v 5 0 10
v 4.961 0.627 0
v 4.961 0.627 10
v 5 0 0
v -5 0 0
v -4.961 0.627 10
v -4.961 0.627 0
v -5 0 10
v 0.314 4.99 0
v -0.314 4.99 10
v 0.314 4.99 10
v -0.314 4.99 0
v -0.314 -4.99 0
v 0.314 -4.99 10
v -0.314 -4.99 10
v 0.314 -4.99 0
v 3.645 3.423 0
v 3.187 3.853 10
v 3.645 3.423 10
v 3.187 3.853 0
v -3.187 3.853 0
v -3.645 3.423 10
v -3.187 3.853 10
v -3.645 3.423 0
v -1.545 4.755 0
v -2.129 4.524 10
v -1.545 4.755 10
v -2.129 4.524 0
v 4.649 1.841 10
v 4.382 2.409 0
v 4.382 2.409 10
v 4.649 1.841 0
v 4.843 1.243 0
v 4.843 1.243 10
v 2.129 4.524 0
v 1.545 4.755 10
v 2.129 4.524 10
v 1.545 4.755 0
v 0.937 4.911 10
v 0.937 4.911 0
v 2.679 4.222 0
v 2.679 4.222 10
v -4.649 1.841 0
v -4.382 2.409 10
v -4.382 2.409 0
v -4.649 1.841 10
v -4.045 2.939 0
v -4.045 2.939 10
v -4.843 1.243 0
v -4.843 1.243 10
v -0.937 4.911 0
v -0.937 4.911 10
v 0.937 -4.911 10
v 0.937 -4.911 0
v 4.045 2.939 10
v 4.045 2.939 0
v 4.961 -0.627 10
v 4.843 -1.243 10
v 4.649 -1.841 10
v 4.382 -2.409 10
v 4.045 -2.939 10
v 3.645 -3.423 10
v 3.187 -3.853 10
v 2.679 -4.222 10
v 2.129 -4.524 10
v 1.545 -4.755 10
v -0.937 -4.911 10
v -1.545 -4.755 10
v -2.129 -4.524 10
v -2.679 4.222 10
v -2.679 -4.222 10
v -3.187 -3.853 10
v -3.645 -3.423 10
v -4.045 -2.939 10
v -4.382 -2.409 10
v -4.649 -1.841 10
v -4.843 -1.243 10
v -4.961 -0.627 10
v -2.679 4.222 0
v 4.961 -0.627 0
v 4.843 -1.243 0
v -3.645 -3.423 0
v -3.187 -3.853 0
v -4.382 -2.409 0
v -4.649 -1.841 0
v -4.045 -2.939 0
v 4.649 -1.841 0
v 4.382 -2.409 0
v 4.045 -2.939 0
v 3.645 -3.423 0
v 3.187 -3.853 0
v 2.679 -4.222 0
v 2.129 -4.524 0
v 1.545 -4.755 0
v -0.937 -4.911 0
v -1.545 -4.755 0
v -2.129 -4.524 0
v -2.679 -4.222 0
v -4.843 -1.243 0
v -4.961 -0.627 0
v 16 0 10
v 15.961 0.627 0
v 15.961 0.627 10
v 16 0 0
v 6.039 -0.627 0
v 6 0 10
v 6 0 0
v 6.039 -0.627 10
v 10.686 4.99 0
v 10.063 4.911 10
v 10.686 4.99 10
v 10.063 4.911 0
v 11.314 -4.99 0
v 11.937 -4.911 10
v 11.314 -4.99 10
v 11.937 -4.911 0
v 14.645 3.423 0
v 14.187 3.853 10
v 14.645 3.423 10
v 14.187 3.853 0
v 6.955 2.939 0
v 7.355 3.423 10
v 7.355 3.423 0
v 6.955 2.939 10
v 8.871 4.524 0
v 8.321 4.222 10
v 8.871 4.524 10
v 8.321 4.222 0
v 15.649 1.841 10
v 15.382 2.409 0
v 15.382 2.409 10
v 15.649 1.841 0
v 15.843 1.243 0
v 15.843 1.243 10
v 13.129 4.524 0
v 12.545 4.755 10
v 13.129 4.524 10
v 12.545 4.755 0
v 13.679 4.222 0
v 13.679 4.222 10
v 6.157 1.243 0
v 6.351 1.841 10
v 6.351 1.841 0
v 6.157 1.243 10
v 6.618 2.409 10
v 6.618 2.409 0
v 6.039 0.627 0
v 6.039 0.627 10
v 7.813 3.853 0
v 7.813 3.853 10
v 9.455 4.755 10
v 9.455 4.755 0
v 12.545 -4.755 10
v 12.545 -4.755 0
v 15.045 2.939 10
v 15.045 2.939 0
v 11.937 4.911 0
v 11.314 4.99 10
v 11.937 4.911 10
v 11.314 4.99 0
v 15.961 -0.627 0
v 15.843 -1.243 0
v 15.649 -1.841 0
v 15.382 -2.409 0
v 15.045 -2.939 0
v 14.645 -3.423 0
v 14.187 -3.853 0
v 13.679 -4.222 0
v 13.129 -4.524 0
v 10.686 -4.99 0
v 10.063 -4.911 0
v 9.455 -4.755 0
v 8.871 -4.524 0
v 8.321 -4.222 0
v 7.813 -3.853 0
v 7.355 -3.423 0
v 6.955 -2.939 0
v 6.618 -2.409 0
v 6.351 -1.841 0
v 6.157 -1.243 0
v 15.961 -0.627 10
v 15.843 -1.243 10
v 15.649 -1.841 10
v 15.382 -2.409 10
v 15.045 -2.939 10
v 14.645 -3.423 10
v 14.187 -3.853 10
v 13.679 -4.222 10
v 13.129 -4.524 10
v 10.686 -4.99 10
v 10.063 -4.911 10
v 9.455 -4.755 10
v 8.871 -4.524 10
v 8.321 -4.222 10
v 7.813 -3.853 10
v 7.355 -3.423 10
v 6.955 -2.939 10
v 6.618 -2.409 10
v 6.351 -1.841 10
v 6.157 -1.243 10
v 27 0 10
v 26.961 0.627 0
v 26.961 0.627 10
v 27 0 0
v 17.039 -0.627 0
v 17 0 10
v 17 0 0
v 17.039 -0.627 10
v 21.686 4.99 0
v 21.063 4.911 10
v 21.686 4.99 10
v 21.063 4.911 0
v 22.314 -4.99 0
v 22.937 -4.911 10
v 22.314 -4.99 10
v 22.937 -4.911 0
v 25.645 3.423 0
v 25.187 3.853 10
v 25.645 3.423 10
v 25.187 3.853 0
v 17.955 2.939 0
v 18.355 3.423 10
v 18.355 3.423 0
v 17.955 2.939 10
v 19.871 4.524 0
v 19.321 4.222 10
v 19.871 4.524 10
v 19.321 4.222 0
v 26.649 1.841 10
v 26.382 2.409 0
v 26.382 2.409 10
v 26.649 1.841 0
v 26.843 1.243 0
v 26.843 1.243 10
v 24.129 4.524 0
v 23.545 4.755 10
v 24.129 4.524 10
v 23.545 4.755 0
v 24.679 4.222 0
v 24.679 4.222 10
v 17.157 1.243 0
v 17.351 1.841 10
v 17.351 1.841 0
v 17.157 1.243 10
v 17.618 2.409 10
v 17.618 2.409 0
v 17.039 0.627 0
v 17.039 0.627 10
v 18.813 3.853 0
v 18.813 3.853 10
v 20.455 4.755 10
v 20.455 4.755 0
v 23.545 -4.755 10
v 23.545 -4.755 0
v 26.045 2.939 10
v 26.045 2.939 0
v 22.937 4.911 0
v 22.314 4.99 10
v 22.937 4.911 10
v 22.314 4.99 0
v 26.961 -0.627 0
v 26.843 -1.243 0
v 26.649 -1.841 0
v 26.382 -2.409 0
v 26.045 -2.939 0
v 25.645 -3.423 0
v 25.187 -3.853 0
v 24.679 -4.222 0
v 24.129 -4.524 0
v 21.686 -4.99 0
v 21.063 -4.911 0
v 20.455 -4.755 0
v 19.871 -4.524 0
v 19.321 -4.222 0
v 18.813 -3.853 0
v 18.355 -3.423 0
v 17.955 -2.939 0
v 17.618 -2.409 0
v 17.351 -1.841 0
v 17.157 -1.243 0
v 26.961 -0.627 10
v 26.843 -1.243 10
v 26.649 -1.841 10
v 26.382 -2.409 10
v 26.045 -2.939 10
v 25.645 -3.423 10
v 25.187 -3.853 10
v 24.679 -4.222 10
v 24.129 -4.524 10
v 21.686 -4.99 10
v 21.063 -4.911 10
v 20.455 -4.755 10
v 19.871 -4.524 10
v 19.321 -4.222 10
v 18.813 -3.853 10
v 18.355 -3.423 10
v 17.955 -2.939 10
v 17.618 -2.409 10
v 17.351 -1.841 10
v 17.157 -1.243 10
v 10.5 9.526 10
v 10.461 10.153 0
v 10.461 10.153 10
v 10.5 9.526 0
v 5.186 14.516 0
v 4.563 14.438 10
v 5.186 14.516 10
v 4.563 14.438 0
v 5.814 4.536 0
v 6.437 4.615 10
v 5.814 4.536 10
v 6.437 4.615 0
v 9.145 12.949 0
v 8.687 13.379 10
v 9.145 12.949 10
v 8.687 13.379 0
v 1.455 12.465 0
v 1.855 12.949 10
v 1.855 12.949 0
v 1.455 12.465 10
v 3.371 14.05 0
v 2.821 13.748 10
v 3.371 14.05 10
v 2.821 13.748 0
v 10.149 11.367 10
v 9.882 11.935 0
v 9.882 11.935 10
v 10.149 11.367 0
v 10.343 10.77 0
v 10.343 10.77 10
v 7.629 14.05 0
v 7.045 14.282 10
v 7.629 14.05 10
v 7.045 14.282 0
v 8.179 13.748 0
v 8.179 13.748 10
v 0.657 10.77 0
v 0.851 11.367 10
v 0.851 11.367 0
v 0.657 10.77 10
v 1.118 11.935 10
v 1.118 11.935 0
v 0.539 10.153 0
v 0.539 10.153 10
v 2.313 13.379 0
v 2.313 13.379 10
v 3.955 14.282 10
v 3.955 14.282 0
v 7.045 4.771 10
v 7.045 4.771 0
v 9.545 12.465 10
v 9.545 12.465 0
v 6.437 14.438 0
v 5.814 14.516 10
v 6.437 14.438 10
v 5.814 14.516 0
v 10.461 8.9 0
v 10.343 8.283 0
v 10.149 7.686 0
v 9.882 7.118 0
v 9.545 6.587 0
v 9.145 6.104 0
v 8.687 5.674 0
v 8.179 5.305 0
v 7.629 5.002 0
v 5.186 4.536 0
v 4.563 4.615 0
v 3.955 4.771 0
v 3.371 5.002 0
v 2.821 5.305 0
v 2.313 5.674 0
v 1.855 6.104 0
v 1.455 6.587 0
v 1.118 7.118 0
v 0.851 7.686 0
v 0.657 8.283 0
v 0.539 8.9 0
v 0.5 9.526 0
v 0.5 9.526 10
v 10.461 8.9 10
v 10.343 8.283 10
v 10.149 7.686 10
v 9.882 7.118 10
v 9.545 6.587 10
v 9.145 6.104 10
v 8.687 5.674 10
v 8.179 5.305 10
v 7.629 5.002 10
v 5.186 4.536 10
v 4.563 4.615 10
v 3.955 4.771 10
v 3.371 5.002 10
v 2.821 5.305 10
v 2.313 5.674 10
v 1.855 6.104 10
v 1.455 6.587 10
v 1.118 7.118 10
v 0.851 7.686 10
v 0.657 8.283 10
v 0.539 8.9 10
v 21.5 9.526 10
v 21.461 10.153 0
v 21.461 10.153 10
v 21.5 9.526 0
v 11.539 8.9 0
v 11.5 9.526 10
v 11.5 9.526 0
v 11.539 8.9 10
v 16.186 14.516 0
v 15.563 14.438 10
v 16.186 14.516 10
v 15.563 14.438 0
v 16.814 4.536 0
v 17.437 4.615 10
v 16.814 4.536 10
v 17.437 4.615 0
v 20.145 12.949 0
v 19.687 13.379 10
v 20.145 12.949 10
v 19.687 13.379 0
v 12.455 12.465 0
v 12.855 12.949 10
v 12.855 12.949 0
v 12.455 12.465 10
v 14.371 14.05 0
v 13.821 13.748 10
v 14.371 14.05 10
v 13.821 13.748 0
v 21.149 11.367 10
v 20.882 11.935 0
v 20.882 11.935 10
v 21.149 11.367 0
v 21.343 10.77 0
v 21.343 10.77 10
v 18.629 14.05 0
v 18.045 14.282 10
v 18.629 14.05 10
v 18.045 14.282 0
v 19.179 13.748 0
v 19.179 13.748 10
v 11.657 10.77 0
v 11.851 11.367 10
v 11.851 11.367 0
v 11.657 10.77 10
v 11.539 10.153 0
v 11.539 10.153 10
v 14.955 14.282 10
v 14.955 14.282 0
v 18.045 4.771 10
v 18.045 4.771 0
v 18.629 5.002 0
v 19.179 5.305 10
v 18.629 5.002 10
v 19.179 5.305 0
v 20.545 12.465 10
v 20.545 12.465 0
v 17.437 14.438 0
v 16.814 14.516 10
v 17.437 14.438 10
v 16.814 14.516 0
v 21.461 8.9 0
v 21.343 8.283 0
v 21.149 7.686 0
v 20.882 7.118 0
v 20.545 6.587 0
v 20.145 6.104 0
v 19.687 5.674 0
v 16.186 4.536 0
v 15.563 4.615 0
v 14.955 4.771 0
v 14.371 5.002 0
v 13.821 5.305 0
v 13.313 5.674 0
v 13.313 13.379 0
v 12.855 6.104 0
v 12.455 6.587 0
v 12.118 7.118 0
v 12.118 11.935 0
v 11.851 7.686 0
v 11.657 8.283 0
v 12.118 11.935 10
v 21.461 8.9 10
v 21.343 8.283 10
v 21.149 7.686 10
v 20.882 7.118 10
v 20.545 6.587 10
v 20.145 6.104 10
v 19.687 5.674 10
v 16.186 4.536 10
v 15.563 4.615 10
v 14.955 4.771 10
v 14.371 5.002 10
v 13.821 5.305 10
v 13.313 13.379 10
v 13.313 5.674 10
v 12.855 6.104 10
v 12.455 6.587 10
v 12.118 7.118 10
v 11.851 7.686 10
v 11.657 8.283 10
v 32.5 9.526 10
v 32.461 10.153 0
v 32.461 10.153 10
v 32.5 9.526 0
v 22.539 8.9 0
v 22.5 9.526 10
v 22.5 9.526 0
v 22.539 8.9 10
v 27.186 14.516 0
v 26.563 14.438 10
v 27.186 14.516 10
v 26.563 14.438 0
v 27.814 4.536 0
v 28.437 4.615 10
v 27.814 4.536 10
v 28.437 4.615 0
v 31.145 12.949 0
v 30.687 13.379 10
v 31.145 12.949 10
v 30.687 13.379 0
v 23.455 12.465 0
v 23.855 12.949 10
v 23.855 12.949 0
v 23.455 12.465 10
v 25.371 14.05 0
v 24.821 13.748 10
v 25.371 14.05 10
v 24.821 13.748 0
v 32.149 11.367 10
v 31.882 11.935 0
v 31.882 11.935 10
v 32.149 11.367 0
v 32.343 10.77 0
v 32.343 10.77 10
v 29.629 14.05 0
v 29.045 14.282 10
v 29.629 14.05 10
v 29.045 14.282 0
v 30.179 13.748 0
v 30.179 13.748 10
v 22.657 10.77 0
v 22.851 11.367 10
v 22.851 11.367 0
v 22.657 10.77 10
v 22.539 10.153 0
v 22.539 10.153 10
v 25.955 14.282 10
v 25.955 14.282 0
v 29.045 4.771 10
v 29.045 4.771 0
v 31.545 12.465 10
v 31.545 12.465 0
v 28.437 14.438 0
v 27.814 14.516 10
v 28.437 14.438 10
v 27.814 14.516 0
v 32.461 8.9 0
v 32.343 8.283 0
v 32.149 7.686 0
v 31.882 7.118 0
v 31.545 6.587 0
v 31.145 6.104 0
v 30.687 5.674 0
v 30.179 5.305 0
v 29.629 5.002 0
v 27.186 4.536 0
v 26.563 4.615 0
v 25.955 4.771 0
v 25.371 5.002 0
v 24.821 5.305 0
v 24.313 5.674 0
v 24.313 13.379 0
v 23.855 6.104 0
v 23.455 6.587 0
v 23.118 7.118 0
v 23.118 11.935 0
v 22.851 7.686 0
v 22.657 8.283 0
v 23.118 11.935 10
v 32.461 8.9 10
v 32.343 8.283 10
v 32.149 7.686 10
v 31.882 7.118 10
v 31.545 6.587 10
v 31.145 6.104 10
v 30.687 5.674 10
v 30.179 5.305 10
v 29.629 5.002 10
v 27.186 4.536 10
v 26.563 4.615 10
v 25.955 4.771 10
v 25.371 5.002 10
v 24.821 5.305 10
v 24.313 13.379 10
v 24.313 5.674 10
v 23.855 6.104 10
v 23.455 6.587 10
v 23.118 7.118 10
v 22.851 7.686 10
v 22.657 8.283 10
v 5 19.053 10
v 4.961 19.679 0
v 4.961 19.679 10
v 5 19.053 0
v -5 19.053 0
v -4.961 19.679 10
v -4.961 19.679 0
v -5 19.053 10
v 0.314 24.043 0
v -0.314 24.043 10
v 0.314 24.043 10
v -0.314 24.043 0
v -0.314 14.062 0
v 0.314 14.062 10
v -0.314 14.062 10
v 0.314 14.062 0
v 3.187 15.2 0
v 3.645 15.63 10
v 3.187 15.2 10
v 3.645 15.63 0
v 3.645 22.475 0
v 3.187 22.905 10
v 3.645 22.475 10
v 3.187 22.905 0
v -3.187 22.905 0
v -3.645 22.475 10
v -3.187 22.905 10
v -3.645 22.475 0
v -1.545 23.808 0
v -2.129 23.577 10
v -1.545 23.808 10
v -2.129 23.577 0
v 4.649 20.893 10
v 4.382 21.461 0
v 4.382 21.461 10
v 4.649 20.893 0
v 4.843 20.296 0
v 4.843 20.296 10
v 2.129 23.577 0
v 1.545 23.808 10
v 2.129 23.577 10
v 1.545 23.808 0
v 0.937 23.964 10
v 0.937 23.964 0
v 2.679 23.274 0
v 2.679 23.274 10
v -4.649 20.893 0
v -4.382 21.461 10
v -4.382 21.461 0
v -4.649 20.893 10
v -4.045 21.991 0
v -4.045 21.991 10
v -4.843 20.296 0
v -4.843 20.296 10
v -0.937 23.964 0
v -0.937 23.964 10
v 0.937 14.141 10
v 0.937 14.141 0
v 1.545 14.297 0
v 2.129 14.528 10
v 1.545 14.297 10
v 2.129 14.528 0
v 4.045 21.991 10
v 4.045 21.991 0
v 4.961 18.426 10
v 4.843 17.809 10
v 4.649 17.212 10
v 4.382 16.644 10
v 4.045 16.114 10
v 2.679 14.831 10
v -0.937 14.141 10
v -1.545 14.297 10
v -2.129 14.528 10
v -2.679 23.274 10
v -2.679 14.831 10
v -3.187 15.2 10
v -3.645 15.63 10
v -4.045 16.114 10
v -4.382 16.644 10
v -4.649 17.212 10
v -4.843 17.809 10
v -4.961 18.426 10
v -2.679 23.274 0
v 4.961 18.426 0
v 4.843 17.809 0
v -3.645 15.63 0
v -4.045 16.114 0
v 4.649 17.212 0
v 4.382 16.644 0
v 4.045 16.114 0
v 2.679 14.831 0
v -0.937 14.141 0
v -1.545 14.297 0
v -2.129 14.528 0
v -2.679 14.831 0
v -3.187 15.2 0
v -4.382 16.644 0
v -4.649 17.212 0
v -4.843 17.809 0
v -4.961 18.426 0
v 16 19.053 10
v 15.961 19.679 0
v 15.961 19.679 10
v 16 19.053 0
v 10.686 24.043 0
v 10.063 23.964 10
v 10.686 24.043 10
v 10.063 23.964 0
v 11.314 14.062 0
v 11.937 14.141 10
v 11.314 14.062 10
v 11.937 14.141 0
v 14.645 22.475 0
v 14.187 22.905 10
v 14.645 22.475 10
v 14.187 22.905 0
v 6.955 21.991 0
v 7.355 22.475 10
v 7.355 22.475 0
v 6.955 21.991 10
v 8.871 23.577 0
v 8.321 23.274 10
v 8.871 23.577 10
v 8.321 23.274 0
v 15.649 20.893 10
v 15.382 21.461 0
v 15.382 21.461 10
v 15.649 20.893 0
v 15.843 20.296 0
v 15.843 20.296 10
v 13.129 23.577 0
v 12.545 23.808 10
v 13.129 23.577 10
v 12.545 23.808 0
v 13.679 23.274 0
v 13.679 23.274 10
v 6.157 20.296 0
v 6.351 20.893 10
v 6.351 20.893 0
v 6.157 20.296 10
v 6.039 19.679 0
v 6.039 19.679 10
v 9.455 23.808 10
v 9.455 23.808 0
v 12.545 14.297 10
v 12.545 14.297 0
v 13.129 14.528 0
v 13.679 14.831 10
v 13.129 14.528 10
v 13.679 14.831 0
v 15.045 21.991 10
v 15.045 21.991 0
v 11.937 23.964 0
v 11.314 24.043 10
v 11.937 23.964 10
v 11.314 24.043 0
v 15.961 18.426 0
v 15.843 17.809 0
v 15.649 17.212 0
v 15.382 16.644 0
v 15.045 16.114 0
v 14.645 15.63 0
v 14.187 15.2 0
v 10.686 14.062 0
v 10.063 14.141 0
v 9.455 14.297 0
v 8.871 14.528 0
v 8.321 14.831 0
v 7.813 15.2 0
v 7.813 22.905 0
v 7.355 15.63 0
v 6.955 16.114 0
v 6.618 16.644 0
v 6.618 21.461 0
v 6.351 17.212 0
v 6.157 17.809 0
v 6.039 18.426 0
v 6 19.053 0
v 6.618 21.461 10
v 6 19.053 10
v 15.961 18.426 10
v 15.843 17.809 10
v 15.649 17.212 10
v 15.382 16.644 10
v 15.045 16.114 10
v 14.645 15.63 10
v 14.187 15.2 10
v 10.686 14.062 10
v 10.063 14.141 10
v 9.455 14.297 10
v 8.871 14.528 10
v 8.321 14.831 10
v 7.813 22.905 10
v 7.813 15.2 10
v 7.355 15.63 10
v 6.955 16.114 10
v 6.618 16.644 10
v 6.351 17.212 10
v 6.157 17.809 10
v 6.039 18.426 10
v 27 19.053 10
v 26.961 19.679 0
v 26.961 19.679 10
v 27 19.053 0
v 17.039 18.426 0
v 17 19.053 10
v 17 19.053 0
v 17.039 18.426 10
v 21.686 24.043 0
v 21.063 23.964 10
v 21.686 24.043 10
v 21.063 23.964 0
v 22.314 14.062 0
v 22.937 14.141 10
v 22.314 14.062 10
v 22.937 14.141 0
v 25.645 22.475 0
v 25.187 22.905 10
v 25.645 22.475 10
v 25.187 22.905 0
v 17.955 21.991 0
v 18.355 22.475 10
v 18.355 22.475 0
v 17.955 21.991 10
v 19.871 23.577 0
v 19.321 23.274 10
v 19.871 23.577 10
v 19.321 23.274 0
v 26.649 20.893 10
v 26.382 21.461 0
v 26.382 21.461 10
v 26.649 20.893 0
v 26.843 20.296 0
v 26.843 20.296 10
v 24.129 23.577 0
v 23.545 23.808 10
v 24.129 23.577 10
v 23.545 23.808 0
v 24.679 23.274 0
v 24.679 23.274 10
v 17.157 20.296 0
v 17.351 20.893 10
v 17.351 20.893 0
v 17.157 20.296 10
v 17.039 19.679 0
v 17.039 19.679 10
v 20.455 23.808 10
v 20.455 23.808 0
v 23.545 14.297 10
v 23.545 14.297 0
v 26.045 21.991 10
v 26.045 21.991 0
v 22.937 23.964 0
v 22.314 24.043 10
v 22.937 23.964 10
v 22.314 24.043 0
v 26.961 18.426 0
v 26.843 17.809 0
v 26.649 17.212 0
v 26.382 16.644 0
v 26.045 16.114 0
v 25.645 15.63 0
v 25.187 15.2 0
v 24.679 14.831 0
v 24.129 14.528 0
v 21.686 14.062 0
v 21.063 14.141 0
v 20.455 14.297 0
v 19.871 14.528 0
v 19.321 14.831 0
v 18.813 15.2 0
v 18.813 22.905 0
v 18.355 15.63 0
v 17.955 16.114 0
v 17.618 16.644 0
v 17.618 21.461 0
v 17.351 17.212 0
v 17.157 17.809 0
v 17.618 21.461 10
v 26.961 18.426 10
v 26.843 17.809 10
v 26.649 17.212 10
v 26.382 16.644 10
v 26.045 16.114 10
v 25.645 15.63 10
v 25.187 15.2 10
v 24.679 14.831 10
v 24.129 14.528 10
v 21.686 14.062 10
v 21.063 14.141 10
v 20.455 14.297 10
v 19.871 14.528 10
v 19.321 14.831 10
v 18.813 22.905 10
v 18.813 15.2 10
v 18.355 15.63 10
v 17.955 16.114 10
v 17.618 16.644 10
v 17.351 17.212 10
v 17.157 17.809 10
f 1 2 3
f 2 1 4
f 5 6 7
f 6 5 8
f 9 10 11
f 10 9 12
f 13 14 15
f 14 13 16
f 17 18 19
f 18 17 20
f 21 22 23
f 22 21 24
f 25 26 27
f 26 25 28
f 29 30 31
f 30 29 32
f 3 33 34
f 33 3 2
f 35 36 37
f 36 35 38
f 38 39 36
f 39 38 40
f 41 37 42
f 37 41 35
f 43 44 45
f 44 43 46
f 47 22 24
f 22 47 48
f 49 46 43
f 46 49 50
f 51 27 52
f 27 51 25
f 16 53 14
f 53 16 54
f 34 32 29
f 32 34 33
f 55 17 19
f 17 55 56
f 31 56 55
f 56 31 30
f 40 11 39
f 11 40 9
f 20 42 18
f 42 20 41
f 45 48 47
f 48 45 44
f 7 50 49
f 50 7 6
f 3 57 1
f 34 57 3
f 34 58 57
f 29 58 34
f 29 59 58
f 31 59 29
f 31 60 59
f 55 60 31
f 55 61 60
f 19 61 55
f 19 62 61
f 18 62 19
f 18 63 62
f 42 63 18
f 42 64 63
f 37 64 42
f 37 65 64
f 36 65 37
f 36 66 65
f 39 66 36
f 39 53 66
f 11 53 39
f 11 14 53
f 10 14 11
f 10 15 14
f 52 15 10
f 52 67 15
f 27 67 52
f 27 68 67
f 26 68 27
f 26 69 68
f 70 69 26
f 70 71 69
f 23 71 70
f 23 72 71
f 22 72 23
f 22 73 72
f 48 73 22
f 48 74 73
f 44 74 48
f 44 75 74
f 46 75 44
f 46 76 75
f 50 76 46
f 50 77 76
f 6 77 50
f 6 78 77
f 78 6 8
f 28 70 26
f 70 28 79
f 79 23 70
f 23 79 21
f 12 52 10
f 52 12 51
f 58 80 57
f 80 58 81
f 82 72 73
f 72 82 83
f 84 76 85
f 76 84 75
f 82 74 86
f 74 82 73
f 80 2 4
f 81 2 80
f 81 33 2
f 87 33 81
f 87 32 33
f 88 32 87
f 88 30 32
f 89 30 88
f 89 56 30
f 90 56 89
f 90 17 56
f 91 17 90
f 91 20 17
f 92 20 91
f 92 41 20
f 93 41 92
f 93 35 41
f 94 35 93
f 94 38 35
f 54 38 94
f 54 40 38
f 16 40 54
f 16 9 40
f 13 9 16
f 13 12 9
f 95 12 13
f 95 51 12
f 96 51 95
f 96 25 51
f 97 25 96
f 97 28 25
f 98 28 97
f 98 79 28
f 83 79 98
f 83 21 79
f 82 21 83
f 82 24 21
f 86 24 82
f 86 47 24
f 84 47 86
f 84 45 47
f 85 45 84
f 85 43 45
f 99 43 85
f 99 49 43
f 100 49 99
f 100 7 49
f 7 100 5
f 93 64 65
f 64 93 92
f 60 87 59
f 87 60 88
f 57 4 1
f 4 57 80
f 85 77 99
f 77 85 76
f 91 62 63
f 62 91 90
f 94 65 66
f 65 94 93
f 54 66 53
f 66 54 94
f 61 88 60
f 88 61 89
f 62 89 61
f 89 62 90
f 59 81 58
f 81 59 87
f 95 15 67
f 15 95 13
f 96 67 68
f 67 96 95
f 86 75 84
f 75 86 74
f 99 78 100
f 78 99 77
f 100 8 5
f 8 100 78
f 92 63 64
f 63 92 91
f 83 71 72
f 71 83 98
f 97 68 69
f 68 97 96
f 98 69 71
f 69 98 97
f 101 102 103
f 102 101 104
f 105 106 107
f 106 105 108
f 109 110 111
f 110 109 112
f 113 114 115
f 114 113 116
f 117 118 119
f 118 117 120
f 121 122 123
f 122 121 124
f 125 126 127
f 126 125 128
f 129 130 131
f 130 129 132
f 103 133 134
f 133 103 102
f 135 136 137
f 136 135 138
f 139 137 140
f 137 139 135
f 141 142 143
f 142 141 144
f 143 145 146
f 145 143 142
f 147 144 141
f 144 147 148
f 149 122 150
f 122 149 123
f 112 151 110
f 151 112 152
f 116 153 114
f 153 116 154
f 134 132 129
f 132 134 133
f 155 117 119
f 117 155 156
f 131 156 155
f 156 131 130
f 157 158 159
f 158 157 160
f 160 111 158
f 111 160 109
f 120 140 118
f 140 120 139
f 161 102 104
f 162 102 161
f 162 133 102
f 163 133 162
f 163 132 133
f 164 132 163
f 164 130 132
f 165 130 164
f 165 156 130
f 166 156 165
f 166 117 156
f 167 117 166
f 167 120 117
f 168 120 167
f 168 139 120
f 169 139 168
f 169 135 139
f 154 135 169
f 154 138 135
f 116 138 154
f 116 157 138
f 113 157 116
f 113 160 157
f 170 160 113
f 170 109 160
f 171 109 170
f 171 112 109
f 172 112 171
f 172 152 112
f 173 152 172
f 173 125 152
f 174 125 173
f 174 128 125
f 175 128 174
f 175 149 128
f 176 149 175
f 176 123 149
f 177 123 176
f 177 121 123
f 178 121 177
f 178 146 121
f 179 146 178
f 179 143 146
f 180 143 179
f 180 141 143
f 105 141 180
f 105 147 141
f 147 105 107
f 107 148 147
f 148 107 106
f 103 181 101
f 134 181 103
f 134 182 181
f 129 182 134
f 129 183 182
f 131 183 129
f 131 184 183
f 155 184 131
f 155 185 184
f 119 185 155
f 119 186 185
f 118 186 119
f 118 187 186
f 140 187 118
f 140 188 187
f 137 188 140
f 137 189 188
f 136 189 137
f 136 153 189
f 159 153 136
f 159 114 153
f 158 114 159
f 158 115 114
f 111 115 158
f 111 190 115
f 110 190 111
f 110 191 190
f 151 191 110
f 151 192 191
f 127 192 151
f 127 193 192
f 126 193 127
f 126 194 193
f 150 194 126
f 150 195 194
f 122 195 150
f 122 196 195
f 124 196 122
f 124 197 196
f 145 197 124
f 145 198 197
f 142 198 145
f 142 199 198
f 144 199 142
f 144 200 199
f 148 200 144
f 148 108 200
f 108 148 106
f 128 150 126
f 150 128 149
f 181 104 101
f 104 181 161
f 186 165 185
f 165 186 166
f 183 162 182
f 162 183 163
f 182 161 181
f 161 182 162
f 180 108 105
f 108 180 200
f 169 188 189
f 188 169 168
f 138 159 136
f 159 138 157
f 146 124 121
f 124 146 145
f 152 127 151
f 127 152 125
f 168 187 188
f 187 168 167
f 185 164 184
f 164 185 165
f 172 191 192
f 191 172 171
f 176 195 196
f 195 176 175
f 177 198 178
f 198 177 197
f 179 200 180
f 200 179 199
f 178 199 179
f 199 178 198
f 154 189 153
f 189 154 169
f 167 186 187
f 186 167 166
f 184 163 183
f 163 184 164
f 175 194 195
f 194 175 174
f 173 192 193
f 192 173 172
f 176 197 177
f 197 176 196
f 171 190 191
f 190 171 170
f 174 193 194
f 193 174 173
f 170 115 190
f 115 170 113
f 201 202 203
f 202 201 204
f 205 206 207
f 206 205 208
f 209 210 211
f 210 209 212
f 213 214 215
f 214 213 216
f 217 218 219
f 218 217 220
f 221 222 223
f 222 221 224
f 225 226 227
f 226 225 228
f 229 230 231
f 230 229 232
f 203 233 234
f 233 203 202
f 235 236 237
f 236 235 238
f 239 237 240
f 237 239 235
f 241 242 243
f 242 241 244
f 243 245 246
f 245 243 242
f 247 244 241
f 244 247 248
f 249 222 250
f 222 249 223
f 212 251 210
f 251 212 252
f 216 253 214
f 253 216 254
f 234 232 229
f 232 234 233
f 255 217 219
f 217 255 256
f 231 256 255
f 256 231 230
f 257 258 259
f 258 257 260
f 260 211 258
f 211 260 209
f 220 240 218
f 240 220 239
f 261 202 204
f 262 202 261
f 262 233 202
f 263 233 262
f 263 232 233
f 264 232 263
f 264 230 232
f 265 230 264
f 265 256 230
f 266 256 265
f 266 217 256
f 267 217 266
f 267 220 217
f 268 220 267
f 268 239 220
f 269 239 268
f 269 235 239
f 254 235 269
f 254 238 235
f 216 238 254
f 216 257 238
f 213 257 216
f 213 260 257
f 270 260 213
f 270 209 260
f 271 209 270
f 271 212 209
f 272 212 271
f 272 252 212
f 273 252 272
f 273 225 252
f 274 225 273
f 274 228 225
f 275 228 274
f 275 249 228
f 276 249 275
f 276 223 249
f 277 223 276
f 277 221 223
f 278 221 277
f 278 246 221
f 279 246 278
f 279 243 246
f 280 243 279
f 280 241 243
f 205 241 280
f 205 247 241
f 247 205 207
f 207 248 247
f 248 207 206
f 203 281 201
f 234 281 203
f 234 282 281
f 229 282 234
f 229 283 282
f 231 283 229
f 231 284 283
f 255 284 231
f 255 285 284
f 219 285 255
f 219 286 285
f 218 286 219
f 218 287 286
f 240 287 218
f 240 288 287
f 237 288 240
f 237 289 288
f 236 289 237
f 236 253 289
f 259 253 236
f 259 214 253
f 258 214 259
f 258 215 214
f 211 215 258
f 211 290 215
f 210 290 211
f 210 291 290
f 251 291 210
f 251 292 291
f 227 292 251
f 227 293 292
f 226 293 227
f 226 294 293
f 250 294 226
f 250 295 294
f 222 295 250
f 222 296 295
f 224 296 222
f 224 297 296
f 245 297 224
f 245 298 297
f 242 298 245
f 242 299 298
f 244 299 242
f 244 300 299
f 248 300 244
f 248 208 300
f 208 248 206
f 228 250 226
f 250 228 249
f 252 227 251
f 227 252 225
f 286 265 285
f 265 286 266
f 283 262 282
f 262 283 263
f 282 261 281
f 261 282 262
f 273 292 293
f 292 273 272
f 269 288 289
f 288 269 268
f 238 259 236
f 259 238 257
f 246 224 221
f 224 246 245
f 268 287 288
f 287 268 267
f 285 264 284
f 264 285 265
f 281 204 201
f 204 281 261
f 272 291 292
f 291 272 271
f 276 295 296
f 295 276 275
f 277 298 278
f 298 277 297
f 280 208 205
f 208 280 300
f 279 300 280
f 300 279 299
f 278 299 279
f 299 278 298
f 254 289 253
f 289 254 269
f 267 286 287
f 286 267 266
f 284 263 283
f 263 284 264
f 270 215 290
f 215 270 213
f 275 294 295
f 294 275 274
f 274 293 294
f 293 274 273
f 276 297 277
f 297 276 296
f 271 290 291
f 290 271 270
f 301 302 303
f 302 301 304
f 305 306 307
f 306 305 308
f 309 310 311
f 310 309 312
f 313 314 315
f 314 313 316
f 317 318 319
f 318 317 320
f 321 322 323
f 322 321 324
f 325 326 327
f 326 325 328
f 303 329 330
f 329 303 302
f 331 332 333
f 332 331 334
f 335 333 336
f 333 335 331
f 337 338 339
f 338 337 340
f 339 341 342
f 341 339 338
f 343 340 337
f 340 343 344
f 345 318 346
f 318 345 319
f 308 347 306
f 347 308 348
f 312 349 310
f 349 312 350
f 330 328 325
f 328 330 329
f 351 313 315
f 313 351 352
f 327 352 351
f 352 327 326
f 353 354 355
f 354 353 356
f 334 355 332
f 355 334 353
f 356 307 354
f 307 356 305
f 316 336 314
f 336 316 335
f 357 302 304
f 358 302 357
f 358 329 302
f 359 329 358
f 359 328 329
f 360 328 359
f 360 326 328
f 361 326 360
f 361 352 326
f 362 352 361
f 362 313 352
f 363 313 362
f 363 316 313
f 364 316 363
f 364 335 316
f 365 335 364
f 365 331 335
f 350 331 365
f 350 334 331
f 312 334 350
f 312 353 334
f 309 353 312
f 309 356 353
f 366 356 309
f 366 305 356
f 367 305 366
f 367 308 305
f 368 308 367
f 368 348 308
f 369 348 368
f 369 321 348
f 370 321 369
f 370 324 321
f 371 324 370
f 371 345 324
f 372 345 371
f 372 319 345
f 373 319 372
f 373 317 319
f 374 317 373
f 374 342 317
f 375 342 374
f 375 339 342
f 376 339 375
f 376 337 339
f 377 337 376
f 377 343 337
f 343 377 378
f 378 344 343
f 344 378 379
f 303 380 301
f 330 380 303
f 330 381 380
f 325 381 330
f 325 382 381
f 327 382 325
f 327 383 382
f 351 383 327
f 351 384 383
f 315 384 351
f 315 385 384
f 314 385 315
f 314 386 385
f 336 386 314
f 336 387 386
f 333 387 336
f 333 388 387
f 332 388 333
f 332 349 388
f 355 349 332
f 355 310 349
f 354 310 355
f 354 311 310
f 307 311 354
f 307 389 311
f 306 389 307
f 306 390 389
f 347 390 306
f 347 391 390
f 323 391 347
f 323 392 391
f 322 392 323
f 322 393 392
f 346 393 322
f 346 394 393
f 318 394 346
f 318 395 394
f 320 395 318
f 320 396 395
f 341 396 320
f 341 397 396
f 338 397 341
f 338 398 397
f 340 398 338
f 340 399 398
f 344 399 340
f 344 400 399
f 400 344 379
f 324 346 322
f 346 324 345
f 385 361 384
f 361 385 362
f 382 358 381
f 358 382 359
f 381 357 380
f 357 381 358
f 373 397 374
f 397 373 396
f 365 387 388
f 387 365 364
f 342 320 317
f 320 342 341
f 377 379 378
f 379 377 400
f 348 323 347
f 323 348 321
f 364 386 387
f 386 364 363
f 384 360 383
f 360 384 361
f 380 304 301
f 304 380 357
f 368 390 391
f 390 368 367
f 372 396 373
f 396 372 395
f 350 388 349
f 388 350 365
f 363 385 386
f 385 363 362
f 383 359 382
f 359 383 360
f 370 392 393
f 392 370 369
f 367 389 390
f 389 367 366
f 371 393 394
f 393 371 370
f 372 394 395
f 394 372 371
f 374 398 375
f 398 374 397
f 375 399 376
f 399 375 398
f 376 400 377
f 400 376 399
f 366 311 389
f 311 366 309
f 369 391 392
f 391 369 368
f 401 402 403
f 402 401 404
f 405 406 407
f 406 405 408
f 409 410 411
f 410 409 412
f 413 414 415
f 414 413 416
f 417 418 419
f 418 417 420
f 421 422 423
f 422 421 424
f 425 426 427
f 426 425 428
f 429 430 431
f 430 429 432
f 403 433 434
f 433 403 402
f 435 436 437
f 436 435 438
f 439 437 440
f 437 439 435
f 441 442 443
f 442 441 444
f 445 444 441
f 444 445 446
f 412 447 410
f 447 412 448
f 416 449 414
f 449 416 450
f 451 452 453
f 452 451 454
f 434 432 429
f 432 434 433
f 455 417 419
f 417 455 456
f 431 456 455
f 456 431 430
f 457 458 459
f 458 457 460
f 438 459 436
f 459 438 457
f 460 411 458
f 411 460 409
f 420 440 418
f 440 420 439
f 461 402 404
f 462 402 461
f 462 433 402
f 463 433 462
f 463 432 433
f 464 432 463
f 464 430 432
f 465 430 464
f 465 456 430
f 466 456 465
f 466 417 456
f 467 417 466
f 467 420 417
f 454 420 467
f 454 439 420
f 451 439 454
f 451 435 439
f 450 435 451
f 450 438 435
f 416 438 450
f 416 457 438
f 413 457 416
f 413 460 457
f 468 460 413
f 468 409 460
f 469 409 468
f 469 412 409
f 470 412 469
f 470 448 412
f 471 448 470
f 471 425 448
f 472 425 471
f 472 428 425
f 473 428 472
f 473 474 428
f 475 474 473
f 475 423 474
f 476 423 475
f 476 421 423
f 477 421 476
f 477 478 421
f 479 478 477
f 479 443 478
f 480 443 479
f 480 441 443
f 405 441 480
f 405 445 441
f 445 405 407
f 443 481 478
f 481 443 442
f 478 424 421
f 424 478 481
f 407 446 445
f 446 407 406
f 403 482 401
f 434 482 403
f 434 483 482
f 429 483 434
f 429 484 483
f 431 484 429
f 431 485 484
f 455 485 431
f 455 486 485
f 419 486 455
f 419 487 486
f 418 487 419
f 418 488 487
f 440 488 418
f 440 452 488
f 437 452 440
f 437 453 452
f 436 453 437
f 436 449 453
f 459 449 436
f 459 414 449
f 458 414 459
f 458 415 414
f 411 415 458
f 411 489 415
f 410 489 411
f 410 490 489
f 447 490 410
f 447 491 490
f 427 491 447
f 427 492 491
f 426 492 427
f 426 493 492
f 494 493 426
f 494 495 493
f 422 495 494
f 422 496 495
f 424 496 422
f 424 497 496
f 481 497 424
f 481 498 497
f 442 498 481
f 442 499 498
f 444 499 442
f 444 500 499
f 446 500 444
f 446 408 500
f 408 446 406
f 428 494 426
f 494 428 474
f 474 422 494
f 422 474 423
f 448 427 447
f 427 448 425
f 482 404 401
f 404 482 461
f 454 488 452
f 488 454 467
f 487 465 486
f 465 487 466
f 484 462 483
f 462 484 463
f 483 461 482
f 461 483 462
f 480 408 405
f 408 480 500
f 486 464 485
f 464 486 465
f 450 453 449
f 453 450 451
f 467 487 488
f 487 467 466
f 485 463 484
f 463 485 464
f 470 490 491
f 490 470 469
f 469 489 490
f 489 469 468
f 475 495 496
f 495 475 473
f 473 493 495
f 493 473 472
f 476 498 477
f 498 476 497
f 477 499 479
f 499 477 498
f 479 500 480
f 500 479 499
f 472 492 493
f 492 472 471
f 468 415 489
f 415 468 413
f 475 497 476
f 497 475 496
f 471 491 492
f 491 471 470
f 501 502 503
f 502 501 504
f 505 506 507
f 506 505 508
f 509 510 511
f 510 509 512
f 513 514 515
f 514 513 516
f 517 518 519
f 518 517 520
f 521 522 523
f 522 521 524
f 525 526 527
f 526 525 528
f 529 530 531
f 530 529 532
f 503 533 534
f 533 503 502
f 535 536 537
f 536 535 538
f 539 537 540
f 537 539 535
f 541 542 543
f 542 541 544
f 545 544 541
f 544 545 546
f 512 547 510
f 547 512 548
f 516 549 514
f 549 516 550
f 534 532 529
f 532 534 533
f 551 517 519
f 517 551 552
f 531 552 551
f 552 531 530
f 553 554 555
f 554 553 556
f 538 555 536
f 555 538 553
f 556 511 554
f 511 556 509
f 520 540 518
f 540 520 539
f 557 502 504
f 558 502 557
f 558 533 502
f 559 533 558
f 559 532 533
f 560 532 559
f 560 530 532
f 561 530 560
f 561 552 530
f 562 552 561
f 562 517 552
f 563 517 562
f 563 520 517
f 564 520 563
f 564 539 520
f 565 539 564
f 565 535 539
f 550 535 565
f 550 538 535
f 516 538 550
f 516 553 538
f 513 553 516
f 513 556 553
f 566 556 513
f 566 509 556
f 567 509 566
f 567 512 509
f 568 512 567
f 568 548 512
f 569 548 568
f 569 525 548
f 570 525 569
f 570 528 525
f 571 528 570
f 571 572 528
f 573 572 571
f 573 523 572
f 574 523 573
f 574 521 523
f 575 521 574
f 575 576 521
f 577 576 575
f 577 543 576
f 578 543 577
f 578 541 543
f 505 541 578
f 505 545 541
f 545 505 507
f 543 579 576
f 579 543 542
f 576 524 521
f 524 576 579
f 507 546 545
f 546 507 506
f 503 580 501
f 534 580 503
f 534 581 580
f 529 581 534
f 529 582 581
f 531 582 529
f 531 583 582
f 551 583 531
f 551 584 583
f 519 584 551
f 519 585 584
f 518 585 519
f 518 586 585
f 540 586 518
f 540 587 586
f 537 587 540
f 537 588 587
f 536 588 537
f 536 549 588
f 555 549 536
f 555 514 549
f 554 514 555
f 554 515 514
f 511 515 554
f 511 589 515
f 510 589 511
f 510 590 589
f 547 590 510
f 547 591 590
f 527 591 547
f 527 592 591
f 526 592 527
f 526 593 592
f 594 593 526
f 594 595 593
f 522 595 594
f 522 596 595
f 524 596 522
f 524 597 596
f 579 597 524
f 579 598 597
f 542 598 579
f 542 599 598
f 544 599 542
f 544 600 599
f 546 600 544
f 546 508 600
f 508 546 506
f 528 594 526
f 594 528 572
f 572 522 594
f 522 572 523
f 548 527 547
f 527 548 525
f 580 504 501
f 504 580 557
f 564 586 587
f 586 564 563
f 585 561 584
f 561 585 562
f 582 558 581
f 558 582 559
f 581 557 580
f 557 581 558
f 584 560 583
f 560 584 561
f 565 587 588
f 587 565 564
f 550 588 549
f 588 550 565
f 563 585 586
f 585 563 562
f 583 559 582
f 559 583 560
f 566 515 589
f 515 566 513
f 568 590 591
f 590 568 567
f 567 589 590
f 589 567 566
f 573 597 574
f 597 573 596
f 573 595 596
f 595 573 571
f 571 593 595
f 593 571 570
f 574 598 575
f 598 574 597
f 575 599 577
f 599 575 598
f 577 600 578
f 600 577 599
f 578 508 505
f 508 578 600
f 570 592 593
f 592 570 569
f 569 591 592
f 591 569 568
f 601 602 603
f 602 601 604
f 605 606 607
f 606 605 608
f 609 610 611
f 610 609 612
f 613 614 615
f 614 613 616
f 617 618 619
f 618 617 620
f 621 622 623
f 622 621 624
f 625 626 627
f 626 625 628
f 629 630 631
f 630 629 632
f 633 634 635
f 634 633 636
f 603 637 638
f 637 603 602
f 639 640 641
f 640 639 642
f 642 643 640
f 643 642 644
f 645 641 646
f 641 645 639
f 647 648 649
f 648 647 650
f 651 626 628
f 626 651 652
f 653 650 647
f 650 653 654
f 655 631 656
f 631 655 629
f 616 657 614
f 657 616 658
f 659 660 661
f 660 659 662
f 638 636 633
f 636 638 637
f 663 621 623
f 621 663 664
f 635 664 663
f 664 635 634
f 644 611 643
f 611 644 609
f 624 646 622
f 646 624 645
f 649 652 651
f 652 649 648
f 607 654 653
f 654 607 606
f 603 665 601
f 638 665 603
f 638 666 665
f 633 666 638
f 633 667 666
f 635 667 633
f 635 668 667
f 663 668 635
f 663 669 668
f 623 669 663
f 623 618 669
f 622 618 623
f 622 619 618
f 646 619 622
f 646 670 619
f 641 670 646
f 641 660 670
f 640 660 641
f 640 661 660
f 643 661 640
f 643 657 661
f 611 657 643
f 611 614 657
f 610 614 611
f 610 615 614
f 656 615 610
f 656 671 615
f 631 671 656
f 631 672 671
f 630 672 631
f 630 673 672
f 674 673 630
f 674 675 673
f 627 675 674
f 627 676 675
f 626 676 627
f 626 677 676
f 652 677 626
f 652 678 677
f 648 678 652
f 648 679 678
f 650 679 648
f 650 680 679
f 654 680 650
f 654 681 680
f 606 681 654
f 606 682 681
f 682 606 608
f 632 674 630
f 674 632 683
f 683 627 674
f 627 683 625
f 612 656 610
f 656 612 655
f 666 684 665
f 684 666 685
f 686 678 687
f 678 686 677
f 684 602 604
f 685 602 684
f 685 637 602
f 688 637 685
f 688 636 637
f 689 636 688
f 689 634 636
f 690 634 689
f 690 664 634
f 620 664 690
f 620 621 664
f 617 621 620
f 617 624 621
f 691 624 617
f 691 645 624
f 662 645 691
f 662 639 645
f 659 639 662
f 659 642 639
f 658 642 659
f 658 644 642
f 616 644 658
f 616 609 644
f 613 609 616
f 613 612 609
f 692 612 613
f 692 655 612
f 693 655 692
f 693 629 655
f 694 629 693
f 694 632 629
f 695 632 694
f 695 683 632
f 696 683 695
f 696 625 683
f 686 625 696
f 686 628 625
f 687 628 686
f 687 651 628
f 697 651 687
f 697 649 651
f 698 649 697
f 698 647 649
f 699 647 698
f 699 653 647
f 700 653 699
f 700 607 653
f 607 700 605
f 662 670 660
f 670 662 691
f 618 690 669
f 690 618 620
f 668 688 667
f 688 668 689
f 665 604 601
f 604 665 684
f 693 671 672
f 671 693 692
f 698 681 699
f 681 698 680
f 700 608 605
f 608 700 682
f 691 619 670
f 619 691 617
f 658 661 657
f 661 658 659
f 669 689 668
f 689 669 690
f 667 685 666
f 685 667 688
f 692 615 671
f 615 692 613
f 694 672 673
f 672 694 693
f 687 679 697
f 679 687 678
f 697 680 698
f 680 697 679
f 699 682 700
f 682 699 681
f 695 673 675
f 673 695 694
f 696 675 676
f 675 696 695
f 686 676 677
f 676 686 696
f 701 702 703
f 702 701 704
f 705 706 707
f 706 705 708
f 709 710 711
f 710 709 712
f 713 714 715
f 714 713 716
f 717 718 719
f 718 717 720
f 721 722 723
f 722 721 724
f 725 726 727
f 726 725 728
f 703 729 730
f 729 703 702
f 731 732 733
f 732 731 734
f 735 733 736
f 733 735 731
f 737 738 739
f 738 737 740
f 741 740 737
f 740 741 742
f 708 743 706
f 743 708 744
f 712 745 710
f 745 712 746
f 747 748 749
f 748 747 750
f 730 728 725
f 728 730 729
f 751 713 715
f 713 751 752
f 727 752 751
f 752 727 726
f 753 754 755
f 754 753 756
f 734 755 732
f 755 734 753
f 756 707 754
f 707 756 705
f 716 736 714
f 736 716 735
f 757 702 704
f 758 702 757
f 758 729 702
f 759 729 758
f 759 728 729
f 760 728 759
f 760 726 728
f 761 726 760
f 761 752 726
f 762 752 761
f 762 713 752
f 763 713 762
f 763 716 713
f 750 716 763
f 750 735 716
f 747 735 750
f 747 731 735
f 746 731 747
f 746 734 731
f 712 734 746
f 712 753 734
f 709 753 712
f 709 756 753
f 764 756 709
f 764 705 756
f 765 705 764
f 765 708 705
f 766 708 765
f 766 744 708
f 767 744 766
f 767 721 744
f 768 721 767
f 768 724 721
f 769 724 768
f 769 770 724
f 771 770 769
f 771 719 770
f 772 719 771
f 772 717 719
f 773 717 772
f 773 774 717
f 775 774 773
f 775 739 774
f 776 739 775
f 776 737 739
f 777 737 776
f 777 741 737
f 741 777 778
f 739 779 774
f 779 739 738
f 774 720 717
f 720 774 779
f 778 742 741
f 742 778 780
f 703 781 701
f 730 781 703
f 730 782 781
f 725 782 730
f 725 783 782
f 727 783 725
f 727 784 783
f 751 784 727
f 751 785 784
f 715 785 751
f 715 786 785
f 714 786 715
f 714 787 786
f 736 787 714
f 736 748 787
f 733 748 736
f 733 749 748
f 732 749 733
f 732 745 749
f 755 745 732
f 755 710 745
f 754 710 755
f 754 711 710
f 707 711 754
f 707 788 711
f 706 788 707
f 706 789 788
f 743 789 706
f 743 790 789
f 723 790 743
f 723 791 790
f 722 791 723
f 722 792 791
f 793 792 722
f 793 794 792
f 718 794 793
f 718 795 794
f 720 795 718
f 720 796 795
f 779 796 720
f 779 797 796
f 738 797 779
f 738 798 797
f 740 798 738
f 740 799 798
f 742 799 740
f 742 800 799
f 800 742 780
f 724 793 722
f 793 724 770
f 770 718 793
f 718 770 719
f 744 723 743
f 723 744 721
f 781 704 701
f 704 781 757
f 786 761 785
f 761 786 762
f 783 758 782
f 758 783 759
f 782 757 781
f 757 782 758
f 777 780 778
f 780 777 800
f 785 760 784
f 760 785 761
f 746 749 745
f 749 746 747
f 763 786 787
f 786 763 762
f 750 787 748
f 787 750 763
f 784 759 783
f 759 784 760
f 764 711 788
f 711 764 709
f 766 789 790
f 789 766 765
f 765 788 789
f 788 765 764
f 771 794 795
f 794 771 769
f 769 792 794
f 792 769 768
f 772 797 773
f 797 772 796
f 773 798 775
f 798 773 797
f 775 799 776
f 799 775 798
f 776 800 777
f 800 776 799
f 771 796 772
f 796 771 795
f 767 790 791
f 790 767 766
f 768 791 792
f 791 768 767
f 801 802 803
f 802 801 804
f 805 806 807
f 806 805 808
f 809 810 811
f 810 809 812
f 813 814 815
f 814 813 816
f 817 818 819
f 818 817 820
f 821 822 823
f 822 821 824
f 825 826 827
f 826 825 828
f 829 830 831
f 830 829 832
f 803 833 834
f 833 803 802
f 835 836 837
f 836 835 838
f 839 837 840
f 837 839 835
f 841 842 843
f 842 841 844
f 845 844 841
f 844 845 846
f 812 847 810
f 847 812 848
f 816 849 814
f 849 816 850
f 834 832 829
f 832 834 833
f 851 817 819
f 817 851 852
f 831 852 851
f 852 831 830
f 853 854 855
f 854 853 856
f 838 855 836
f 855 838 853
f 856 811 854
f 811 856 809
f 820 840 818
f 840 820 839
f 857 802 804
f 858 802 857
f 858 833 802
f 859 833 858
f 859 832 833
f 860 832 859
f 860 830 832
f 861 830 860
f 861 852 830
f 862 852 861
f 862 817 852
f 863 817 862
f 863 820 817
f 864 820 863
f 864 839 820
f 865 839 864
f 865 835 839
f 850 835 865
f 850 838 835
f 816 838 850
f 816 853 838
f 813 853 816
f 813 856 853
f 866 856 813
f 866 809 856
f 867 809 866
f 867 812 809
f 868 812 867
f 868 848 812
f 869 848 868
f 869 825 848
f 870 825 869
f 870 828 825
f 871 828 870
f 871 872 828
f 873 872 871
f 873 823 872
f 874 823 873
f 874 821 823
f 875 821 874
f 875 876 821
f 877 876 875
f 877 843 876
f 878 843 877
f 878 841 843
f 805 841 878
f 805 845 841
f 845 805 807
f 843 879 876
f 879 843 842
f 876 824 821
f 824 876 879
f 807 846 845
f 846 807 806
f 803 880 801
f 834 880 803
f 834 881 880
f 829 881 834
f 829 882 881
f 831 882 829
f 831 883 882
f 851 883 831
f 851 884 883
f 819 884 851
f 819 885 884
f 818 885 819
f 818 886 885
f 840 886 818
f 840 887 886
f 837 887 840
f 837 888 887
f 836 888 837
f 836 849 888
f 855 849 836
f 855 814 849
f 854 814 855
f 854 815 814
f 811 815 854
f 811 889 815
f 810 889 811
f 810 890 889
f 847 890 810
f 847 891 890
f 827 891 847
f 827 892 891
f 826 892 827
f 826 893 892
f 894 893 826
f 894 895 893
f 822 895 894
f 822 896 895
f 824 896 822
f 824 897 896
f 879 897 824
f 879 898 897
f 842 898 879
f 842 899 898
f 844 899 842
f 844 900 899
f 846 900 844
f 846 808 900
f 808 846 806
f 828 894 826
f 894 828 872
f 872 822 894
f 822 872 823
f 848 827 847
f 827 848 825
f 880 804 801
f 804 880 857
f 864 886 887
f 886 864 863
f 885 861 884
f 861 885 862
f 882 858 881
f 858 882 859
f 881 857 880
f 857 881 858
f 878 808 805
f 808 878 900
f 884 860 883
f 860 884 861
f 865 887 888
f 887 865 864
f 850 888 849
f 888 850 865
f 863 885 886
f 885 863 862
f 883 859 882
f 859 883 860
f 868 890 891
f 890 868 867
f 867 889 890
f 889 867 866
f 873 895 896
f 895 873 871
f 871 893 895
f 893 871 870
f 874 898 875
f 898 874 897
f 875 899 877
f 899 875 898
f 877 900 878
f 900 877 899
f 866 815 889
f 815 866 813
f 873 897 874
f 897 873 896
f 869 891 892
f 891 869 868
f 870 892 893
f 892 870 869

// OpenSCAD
//-----FUNÇÃO ARRAY 2D DE CILÍNDROS-----//

// Forneça o raio dos cilíndros: r
// Forneça entre os centros de cada cilíndro: d
// Forneça a altura dos cilíndros: h
// Forneça a quantidade de cilíndros em ambas as direções: nx, ny
// Forneça a resolução dos cilíndros: res
// Selecione a geometria:
//      Retangular: 1
//      Hexagonal: 2

module funcao_2d_array_cilindros(r,d,h,nx,ny,geo,res){
    if (d<2*r){
        text("Error!");
        translate([0,-15,0])text("Verify your specified dimensions.");
    }else{
        if(geo==1){
            for(j=[0:1:ny-1]){
                for(i=[0:1:nx-1]){
                    translate([i*d,j*d,0])cylinder(h,r,r,$fn=res);
                }
            }
        }else if(geo==2){
            for(j=[0:1:ny-1]){
                for(i=[0:1:nx-1]){
                    translate([i*d+(j%2)*d*cos(60),j*d*sin(60),0])cylinder(h,r,r,$fn=res);
                }
            }
        }else{
            text("Error!");
            translate([0,-15,0])text("Please, choose a valid geometry number.");
        }
        
    }    
}

// A quantidade de cilíndros é dada por nx*ny
// Para um geometria retangular, as dimensões são dadas por [(nx-1)*d+2*r,(ny-1)*d+2*r,h]
// Para um geometria hexagonal, as dimensões são dadas por [(nx-1+cos(60))*d+2*r,(ny-1)*d*sin(60)+2*r,h]

r=5;
d=11;
h=10;
nx=3;
ny=3;
geo=2;
res=50;

funcao_2d_array_cilindros(r,d,h,nx,ny,geo,res);
